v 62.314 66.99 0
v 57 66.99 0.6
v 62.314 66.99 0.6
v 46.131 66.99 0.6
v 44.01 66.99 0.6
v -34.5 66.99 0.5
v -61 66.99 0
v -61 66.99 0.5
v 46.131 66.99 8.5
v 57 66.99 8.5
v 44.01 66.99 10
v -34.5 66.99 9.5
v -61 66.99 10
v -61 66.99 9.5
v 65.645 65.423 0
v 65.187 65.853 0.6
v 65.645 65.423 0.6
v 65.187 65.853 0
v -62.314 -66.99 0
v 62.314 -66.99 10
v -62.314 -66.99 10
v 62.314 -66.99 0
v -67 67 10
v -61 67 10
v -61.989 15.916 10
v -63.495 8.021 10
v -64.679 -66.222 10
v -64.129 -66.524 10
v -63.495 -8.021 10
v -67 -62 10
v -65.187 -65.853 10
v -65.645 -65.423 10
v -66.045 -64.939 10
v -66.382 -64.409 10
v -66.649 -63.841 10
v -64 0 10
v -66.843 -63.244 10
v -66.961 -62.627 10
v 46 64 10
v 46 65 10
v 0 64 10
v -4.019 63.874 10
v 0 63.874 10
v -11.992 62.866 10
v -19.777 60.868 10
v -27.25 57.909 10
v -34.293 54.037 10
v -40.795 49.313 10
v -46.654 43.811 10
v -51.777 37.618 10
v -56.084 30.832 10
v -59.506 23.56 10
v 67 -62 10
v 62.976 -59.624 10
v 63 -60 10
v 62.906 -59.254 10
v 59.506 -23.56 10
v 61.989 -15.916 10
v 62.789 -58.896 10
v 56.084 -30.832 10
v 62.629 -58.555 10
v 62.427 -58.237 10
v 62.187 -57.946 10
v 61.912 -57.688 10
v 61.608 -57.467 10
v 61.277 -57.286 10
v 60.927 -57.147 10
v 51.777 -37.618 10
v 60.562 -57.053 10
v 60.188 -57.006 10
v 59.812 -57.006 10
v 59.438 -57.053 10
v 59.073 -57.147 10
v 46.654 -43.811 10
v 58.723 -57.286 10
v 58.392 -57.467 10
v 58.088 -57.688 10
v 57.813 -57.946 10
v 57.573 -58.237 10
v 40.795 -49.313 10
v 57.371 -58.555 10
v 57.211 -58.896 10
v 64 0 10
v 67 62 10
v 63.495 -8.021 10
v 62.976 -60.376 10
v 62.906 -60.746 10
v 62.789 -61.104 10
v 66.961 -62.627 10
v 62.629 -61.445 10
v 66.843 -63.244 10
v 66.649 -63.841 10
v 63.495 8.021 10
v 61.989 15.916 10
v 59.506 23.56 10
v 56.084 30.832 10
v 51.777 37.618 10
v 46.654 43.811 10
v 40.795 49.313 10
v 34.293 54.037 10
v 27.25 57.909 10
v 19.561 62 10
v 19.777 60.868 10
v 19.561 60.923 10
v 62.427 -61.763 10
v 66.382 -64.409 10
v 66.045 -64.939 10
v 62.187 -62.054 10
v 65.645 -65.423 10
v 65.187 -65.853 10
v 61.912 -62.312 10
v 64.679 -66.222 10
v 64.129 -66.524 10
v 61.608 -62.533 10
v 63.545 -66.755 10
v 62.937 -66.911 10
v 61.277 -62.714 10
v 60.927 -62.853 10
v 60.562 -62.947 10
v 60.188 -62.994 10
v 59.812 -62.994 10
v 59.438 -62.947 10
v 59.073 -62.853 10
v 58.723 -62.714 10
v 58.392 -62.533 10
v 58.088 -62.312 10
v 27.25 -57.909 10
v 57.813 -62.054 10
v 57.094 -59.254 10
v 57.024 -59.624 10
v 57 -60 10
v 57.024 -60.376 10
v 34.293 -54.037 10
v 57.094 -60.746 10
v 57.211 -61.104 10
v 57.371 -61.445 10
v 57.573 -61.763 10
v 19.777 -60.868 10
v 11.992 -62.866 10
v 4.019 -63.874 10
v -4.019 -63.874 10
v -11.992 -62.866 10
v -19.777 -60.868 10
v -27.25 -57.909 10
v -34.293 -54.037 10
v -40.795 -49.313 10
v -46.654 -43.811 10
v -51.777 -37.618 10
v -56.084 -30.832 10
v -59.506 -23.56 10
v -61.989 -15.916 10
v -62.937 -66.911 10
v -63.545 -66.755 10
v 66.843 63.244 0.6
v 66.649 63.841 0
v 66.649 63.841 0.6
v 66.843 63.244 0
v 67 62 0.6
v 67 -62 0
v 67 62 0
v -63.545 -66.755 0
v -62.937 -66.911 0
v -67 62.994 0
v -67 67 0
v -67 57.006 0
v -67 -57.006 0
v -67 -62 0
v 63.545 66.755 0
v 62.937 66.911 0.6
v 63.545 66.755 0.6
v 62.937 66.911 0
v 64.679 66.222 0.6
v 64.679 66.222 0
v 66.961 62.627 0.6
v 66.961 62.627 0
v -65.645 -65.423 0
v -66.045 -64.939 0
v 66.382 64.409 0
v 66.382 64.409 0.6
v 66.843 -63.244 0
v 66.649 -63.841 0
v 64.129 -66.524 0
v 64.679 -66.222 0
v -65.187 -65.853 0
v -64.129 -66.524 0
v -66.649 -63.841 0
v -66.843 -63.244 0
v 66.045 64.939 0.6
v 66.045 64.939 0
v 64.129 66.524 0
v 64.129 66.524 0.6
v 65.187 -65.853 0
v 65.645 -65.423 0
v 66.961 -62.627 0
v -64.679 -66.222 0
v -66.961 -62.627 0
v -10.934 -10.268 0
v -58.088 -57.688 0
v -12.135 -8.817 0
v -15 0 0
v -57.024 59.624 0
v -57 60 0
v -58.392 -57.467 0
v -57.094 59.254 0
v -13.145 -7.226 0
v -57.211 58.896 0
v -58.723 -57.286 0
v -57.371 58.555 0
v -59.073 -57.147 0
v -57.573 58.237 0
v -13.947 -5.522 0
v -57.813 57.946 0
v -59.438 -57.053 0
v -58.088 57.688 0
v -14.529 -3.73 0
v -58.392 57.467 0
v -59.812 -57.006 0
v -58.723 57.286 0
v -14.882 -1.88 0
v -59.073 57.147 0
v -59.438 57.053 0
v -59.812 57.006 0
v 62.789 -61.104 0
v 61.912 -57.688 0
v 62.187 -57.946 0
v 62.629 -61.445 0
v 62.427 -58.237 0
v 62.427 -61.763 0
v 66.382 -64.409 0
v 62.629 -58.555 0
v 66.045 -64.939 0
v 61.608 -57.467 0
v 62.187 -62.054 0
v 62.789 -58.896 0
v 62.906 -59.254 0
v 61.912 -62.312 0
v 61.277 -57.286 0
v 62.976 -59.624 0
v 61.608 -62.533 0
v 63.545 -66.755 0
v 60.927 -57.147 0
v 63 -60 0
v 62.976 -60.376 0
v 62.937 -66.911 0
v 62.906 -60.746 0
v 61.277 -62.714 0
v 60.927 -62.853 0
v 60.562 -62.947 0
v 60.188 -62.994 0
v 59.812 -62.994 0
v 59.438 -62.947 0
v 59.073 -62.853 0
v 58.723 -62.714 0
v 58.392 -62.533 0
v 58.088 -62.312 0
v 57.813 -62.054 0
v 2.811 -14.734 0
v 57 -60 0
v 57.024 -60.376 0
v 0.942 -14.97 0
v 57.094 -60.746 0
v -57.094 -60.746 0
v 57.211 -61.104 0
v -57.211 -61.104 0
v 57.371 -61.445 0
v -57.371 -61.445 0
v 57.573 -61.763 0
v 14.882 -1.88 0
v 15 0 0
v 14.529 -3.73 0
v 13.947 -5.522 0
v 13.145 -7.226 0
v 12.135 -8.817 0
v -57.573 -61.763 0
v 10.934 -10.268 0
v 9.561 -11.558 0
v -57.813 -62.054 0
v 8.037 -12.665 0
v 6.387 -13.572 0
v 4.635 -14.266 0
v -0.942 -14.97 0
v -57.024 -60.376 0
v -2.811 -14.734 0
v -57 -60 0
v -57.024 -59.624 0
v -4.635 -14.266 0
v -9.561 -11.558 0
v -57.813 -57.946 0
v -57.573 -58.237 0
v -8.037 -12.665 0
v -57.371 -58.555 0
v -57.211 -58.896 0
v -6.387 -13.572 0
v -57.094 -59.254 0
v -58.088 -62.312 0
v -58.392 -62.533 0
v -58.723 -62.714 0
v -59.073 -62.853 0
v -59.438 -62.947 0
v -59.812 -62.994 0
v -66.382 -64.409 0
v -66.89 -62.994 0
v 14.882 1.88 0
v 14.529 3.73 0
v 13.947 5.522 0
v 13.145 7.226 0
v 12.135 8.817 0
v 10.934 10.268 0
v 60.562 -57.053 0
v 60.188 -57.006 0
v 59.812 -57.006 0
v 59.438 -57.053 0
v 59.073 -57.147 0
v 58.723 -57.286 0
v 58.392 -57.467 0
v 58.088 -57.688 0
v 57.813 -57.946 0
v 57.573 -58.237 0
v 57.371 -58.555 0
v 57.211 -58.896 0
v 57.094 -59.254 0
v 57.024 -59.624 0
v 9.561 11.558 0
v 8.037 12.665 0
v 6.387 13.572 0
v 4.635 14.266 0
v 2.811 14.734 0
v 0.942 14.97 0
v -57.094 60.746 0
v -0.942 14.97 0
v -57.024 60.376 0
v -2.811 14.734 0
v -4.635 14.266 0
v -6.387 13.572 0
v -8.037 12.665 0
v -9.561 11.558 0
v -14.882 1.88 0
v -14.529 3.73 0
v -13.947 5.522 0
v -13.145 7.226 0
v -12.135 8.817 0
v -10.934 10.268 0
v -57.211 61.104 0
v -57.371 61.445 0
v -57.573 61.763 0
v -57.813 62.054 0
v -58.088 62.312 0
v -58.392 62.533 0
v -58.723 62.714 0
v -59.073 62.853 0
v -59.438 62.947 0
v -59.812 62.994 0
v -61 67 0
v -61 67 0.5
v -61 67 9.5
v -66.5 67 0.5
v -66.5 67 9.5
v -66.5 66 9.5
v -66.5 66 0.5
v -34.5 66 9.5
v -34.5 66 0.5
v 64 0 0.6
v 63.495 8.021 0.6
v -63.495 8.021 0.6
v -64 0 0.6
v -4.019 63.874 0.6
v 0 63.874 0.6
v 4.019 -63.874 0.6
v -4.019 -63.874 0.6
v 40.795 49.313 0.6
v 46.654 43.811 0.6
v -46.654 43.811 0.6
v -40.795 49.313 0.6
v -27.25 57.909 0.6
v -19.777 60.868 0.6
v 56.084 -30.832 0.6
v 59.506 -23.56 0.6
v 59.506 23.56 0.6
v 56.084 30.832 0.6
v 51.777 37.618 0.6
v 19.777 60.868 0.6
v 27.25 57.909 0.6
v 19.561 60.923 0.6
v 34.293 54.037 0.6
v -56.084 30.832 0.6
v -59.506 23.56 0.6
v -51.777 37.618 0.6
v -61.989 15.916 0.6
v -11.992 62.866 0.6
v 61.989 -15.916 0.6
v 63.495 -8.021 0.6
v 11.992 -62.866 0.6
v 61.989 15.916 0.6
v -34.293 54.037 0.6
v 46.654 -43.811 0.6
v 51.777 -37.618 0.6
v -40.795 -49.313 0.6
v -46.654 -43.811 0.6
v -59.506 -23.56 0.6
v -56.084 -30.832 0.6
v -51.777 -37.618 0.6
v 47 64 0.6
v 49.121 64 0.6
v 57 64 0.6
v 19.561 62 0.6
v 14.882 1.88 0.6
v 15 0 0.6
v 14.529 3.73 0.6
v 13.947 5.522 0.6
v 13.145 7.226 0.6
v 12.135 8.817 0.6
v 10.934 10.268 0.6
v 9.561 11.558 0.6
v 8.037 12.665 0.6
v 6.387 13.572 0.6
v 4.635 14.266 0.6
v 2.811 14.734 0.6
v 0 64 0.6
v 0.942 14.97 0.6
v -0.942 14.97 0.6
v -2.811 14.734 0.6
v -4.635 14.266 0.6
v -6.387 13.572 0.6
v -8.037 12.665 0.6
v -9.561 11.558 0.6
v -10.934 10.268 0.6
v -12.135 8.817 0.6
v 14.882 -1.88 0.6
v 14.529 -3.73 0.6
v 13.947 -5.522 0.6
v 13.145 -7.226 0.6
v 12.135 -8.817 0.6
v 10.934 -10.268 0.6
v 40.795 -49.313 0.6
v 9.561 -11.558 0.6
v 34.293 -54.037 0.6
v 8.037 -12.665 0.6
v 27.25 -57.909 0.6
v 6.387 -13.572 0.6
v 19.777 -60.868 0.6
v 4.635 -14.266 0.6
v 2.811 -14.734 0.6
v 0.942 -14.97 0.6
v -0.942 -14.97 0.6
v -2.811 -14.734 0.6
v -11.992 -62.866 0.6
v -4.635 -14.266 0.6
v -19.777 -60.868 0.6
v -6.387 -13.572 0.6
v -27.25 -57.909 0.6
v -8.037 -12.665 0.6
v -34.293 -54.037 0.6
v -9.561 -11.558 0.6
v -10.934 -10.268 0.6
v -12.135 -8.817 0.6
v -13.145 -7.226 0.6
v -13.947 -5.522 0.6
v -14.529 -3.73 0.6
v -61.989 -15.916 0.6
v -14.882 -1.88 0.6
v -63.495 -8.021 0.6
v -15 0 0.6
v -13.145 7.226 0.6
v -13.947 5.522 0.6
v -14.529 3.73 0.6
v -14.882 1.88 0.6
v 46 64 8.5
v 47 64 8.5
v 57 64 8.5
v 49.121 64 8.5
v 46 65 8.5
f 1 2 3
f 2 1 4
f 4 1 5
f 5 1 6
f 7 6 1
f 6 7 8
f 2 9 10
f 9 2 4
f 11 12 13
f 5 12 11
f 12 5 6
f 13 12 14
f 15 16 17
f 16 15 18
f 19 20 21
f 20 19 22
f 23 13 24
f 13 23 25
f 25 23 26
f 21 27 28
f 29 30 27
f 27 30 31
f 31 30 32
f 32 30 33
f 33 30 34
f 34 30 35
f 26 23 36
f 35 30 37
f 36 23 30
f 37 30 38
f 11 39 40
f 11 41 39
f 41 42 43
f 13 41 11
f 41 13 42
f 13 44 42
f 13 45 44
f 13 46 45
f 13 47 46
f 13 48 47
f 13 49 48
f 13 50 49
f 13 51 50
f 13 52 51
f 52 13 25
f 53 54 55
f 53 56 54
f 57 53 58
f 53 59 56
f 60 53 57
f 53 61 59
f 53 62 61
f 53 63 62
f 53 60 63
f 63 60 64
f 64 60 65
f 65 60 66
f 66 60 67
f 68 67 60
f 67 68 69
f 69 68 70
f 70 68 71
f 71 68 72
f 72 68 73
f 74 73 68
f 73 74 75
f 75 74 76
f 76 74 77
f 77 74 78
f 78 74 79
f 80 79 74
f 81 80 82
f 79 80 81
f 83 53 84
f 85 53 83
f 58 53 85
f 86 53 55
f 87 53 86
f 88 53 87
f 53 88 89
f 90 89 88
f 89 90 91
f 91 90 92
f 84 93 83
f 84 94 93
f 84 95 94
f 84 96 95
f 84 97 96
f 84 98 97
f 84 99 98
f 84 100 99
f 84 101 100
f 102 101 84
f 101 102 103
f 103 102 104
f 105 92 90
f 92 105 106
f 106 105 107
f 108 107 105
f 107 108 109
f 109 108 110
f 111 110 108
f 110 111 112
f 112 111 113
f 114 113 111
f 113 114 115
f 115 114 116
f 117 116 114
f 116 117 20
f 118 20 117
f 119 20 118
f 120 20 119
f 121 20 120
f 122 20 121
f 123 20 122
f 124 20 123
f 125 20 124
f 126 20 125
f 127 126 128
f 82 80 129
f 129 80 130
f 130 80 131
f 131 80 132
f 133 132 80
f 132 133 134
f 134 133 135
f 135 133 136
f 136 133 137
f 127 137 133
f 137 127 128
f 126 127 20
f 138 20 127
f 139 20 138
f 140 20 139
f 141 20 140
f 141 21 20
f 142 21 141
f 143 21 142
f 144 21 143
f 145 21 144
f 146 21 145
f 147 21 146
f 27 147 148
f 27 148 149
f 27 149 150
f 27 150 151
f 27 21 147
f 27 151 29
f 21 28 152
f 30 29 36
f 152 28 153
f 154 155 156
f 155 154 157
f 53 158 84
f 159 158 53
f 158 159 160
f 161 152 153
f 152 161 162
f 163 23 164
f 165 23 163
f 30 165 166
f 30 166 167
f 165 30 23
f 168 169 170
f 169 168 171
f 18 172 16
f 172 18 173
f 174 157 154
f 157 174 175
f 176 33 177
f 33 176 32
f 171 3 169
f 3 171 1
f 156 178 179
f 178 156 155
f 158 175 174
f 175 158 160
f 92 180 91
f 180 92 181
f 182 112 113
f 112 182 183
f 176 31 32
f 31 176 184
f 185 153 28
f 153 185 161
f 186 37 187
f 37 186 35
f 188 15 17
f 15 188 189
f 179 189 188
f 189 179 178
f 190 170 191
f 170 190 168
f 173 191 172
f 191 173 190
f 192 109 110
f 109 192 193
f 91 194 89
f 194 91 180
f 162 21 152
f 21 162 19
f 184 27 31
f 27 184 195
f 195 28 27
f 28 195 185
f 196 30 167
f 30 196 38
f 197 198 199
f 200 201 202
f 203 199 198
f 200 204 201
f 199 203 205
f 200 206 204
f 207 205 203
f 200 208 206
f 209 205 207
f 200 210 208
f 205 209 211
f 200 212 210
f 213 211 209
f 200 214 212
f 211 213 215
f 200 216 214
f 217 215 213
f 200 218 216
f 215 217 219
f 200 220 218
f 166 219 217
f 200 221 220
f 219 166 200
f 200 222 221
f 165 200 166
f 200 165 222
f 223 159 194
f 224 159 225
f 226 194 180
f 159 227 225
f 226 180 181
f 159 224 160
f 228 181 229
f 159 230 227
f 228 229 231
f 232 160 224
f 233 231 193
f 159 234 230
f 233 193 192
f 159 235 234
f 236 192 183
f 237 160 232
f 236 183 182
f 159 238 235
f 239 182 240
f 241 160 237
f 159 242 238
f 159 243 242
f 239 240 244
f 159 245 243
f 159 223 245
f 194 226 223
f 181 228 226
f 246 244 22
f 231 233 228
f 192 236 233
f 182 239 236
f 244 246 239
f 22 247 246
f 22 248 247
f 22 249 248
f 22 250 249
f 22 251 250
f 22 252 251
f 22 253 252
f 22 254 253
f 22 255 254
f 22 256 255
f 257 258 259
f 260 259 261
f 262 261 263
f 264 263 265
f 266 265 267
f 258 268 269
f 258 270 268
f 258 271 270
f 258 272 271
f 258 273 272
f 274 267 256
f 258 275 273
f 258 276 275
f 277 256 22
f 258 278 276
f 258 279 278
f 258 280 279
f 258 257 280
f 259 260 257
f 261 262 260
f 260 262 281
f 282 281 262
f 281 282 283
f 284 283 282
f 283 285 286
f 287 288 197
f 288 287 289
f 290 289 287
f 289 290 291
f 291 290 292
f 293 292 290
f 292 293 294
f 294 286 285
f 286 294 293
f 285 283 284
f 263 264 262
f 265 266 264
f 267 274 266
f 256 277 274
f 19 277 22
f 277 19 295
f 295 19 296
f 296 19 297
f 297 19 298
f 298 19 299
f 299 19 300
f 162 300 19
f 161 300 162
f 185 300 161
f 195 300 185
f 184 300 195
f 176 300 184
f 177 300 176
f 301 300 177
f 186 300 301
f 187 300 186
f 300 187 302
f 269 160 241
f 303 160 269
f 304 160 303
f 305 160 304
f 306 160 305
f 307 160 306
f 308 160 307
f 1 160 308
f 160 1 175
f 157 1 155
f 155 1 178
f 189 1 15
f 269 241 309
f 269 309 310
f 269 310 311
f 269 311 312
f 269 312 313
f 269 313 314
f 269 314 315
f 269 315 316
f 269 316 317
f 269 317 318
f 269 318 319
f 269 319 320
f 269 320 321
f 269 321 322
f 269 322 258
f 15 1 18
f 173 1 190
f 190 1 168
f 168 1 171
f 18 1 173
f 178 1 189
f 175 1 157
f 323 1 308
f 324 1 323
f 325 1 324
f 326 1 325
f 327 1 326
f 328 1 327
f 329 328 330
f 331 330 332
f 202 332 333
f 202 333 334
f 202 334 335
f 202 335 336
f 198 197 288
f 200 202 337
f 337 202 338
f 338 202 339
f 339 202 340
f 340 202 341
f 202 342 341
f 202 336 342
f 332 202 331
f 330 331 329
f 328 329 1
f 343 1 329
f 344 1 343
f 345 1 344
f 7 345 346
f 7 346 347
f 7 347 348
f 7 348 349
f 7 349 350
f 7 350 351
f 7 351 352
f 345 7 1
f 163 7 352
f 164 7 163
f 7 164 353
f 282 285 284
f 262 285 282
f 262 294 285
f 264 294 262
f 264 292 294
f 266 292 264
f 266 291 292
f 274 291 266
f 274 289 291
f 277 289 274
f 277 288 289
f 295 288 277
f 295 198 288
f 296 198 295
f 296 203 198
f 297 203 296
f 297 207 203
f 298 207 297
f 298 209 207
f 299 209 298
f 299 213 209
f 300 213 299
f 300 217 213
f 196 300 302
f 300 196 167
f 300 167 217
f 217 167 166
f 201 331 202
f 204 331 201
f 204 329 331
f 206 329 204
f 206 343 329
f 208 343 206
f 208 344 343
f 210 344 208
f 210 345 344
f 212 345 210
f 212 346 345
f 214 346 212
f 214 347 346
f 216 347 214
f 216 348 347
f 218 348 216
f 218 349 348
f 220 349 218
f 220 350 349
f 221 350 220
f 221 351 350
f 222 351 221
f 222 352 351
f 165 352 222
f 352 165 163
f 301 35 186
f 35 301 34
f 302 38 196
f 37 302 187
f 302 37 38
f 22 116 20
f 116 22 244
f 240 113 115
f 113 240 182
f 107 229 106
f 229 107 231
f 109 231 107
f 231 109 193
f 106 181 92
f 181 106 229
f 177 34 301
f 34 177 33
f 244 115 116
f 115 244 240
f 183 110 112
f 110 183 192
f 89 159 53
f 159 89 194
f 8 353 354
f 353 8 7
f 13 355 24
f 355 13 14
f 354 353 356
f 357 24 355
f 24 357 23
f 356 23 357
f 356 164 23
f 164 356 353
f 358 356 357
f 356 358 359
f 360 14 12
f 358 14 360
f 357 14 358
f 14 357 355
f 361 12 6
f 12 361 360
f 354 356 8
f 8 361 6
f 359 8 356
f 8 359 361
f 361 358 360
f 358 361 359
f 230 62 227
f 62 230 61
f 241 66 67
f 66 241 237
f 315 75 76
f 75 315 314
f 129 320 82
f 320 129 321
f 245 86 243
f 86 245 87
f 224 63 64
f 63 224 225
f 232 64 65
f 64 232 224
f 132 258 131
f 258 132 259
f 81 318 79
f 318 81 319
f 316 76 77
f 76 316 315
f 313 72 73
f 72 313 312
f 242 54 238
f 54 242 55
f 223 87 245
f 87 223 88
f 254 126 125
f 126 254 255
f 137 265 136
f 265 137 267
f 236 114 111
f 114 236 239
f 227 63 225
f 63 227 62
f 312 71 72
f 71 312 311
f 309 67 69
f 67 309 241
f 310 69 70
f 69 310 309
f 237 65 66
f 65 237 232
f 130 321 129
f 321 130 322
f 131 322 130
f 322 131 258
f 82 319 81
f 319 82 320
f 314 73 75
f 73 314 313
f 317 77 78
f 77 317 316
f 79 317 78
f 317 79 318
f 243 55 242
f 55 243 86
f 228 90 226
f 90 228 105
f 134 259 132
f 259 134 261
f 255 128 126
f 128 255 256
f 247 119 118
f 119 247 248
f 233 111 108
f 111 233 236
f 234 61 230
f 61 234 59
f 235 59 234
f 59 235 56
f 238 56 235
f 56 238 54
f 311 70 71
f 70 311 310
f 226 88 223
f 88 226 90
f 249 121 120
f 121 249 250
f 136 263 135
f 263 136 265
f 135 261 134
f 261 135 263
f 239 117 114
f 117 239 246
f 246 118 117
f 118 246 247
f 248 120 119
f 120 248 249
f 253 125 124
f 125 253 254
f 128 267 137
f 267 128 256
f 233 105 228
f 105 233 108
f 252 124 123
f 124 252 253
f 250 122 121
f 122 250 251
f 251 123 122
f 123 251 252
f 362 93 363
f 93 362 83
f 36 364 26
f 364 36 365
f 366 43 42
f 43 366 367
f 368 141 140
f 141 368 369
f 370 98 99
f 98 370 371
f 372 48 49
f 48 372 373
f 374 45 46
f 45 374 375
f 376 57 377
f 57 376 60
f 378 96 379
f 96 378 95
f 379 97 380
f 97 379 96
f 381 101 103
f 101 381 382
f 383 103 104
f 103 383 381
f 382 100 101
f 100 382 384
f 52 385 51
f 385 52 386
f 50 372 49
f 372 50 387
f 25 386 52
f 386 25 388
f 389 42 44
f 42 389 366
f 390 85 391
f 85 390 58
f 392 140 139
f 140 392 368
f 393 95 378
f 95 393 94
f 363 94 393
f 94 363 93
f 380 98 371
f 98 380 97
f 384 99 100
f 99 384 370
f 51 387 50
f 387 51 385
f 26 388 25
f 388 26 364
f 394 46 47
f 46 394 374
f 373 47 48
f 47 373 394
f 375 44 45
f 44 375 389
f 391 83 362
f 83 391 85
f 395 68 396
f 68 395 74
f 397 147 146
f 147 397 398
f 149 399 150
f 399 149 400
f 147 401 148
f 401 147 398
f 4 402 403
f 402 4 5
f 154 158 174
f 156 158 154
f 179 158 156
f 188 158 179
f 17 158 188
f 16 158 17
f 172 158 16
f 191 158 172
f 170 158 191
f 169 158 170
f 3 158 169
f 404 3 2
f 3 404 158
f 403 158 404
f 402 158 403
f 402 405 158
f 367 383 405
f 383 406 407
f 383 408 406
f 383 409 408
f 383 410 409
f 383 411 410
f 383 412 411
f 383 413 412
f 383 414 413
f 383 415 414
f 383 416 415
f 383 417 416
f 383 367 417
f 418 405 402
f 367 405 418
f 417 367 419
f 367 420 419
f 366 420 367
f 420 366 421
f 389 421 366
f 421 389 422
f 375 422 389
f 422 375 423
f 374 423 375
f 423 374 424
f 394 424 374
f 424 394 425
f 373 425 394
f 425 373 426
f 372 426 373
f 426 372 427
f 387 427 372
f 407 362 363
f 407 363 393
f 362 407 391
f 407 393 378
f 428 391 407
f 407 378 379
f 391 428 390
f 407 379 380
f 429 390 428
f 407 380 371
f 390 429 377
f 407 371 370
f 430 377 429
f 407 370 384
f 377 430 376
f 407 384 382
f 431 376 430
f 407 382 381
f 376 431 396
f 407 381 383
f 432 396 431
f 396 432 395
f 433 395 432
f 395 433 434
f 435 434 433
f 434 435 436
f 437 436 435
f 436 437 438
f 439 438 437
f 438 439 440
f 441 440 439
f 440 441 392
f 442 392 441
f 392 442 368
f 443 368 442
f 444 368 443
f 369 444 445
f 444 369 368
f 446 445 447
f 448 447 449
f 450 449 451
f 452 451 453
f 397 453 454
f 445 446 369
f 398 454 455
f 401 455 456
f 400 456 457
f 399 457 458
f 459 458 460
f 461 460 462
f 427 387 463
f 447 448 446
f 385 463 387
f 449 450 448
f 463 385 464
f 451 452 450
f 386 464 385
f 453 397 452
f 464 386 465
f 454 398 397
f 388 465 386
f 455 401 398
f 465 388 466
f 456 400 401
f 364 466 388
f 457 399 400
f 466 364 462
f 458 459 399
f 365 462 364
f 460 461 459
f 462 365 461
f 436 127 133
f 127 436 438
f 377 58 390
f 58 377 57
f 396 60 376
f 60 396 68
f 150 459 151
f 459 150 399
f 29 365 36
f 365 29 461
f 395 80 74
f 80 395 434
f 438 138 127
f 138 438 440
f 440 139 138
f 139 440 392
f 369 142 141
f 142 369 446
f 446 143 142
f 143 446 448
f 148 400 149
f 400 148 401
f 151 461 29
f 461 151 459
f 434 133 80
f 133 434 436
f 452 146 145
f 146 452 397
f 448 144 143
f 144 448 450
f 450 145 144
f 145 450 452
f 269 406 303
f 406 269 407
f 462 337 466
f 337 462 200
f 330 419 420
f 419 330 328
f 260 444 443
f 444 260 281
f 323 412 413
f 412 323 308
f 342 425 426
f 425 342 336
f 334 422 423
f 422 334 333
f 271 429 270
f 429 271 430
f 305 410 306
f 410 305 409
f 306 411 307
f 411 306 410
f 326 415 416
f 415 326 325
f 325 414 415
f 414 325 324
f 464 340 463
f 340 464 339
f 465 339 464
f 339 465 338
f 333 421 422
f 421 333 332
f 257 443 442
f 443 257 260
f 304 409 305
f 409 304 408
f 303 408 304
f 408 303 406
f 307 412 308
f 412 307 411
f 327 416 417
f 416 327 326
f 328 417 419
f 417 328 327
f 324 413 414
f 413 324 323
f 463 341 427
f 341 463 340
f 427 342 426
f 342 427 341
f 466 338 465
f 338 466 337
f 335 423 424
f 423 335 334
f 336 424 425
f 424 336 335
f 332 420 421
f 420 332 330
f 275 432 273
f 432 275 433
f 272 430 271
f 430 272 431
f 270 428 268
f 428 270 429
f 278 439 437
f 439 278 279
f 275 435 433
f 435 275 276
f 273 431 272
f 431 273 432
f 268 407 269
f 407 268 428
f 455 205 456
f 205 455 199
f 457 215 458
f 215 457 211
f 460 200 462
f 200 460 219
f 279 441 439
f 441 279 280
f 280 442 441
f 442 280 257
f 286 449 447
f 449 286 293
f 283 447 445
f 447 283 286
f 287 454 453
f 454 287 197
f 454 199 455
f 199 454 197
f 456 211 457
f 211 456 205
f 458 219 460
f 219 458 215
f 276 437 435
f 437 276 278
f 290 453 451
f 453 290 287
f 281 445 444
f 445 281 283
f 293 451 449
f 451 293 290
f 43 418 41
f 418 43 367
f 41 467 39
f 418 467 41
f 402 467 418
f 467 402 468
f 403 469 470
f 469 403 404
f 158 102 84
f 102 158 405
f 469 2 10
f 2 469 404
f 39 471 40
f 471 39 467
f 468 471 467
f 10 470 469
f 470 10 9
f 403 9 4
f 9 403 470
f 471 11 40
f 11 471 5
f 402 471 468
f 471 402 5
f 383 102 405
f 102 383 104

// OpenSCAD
$fn = 50;


difference() {
	union() {
		hull() {
			translate(v = [-62.0000000000, 62.0000000000, 0]) {
				cylinder(h = 10, r = 5);
			}
			translate(v = [62.0000000000, 62.0000000000, 0]) {
				cylinder(h = 10, r = 5);
			}
			translate(v = [-62.0000000000, -62.0000000000, 0]) {
				cylinder(h = 10, r = 5);
			}
			translate(v = [62.0000000000, -62.0000000000, 0]) {
				cylinder(h = 10, r = 5);
			}
		}
		translate(v = [-67.0000000000, 61.0000000000, 0]) {
			cube(size = [6, 6, 10]);
		}
	}
	union() {
		translate(v = [-67.5000000000, -60.0000000000, -250.0000000000]) {
			rotate(a = [0, 0, 0]) {
				difference() {
					union() {
						hull() {
							translate(v = [7.5000000000, 0, 0]) {
								cylinder(h = 250, r = 3.0000000000, r1 = 3.0000000000, r2 = 3.0000000000);
							}
							translate(v = [-7.5000000000, 0, 0]) {
								cylinder(h = 250, r = 3.0000000000, r1 = 3.0000000000, r2 = 3.0000000000);
							}
						}
					}
					union();
				}
			}
		}
		translate(v = [-67.5000000000, 60.0000000000, -250.0000000000]) {
			rotate(a = [0, 0, 0]) {
				difference() {
					union() {
						hull() {
							translate(v = [7.5000000000, 0, 0]) {
								cylinder(h = 250, r = 3.0000000000, r1 = 3.0000000000, r2 = 3.0000000000);
							}
							translate(v = [-7.5000000000, 0, 0]) {
								cylinder(h = 250, r = 3.0000000000, r1 = 3.0000000000, r2 = 3.0000000000);
							}
						}
					}
					union();
				}
			}
		}
		translate(v = [-66.5000000000, 66.0000000000, 0.5000000000]) {
			cube(size = [32, 1, 9.0000000000]);
		}
		translate(v = [60.0000000000, -60.0000000000, -50.0000000000]) {
			cylinder(h = 100, r = 3.0000000000);
		}
		translate(v = [0, 0, 0.6000000000]) {
			cylinder(h = 12.4000000000, r = 64.0000000000);
		}
		translate(v = [0, 0, -5.0000000000]) {
			cylinder(h = 10, r = 15.0000000000);
		}
		translate(v = [0.0000000000, 62.0000000000, 0.6000000000]) {
			cube(size = [67.0000000000, 2, 12.4000000000]);
		}
		translate(v = [57.0000000000, 62.0000000000, 0.6000000000]) {
			cube(size = [10, 5, 12.4000000000]);
		}
		translate(v = [46.0000000000, 62.0000000000, 8.5000000000]) {
			cube(size = [21, 5, 1.5000000000]);
		}
		translate(v = [43.2500000000, 67.7500000000, 0.6000000000]) {
			rotate(a = [0, 0, -45]) {
				cube(size = [7.5000000000, 1.5000000000, 12.4000000000]);
			}
		}
		translate(v = [12.0610000000, 60.0000000000, 0.6000000000]) {
			cube(size = [7.5000000000, 2, 9.4000000000]);
		}
	}
}
